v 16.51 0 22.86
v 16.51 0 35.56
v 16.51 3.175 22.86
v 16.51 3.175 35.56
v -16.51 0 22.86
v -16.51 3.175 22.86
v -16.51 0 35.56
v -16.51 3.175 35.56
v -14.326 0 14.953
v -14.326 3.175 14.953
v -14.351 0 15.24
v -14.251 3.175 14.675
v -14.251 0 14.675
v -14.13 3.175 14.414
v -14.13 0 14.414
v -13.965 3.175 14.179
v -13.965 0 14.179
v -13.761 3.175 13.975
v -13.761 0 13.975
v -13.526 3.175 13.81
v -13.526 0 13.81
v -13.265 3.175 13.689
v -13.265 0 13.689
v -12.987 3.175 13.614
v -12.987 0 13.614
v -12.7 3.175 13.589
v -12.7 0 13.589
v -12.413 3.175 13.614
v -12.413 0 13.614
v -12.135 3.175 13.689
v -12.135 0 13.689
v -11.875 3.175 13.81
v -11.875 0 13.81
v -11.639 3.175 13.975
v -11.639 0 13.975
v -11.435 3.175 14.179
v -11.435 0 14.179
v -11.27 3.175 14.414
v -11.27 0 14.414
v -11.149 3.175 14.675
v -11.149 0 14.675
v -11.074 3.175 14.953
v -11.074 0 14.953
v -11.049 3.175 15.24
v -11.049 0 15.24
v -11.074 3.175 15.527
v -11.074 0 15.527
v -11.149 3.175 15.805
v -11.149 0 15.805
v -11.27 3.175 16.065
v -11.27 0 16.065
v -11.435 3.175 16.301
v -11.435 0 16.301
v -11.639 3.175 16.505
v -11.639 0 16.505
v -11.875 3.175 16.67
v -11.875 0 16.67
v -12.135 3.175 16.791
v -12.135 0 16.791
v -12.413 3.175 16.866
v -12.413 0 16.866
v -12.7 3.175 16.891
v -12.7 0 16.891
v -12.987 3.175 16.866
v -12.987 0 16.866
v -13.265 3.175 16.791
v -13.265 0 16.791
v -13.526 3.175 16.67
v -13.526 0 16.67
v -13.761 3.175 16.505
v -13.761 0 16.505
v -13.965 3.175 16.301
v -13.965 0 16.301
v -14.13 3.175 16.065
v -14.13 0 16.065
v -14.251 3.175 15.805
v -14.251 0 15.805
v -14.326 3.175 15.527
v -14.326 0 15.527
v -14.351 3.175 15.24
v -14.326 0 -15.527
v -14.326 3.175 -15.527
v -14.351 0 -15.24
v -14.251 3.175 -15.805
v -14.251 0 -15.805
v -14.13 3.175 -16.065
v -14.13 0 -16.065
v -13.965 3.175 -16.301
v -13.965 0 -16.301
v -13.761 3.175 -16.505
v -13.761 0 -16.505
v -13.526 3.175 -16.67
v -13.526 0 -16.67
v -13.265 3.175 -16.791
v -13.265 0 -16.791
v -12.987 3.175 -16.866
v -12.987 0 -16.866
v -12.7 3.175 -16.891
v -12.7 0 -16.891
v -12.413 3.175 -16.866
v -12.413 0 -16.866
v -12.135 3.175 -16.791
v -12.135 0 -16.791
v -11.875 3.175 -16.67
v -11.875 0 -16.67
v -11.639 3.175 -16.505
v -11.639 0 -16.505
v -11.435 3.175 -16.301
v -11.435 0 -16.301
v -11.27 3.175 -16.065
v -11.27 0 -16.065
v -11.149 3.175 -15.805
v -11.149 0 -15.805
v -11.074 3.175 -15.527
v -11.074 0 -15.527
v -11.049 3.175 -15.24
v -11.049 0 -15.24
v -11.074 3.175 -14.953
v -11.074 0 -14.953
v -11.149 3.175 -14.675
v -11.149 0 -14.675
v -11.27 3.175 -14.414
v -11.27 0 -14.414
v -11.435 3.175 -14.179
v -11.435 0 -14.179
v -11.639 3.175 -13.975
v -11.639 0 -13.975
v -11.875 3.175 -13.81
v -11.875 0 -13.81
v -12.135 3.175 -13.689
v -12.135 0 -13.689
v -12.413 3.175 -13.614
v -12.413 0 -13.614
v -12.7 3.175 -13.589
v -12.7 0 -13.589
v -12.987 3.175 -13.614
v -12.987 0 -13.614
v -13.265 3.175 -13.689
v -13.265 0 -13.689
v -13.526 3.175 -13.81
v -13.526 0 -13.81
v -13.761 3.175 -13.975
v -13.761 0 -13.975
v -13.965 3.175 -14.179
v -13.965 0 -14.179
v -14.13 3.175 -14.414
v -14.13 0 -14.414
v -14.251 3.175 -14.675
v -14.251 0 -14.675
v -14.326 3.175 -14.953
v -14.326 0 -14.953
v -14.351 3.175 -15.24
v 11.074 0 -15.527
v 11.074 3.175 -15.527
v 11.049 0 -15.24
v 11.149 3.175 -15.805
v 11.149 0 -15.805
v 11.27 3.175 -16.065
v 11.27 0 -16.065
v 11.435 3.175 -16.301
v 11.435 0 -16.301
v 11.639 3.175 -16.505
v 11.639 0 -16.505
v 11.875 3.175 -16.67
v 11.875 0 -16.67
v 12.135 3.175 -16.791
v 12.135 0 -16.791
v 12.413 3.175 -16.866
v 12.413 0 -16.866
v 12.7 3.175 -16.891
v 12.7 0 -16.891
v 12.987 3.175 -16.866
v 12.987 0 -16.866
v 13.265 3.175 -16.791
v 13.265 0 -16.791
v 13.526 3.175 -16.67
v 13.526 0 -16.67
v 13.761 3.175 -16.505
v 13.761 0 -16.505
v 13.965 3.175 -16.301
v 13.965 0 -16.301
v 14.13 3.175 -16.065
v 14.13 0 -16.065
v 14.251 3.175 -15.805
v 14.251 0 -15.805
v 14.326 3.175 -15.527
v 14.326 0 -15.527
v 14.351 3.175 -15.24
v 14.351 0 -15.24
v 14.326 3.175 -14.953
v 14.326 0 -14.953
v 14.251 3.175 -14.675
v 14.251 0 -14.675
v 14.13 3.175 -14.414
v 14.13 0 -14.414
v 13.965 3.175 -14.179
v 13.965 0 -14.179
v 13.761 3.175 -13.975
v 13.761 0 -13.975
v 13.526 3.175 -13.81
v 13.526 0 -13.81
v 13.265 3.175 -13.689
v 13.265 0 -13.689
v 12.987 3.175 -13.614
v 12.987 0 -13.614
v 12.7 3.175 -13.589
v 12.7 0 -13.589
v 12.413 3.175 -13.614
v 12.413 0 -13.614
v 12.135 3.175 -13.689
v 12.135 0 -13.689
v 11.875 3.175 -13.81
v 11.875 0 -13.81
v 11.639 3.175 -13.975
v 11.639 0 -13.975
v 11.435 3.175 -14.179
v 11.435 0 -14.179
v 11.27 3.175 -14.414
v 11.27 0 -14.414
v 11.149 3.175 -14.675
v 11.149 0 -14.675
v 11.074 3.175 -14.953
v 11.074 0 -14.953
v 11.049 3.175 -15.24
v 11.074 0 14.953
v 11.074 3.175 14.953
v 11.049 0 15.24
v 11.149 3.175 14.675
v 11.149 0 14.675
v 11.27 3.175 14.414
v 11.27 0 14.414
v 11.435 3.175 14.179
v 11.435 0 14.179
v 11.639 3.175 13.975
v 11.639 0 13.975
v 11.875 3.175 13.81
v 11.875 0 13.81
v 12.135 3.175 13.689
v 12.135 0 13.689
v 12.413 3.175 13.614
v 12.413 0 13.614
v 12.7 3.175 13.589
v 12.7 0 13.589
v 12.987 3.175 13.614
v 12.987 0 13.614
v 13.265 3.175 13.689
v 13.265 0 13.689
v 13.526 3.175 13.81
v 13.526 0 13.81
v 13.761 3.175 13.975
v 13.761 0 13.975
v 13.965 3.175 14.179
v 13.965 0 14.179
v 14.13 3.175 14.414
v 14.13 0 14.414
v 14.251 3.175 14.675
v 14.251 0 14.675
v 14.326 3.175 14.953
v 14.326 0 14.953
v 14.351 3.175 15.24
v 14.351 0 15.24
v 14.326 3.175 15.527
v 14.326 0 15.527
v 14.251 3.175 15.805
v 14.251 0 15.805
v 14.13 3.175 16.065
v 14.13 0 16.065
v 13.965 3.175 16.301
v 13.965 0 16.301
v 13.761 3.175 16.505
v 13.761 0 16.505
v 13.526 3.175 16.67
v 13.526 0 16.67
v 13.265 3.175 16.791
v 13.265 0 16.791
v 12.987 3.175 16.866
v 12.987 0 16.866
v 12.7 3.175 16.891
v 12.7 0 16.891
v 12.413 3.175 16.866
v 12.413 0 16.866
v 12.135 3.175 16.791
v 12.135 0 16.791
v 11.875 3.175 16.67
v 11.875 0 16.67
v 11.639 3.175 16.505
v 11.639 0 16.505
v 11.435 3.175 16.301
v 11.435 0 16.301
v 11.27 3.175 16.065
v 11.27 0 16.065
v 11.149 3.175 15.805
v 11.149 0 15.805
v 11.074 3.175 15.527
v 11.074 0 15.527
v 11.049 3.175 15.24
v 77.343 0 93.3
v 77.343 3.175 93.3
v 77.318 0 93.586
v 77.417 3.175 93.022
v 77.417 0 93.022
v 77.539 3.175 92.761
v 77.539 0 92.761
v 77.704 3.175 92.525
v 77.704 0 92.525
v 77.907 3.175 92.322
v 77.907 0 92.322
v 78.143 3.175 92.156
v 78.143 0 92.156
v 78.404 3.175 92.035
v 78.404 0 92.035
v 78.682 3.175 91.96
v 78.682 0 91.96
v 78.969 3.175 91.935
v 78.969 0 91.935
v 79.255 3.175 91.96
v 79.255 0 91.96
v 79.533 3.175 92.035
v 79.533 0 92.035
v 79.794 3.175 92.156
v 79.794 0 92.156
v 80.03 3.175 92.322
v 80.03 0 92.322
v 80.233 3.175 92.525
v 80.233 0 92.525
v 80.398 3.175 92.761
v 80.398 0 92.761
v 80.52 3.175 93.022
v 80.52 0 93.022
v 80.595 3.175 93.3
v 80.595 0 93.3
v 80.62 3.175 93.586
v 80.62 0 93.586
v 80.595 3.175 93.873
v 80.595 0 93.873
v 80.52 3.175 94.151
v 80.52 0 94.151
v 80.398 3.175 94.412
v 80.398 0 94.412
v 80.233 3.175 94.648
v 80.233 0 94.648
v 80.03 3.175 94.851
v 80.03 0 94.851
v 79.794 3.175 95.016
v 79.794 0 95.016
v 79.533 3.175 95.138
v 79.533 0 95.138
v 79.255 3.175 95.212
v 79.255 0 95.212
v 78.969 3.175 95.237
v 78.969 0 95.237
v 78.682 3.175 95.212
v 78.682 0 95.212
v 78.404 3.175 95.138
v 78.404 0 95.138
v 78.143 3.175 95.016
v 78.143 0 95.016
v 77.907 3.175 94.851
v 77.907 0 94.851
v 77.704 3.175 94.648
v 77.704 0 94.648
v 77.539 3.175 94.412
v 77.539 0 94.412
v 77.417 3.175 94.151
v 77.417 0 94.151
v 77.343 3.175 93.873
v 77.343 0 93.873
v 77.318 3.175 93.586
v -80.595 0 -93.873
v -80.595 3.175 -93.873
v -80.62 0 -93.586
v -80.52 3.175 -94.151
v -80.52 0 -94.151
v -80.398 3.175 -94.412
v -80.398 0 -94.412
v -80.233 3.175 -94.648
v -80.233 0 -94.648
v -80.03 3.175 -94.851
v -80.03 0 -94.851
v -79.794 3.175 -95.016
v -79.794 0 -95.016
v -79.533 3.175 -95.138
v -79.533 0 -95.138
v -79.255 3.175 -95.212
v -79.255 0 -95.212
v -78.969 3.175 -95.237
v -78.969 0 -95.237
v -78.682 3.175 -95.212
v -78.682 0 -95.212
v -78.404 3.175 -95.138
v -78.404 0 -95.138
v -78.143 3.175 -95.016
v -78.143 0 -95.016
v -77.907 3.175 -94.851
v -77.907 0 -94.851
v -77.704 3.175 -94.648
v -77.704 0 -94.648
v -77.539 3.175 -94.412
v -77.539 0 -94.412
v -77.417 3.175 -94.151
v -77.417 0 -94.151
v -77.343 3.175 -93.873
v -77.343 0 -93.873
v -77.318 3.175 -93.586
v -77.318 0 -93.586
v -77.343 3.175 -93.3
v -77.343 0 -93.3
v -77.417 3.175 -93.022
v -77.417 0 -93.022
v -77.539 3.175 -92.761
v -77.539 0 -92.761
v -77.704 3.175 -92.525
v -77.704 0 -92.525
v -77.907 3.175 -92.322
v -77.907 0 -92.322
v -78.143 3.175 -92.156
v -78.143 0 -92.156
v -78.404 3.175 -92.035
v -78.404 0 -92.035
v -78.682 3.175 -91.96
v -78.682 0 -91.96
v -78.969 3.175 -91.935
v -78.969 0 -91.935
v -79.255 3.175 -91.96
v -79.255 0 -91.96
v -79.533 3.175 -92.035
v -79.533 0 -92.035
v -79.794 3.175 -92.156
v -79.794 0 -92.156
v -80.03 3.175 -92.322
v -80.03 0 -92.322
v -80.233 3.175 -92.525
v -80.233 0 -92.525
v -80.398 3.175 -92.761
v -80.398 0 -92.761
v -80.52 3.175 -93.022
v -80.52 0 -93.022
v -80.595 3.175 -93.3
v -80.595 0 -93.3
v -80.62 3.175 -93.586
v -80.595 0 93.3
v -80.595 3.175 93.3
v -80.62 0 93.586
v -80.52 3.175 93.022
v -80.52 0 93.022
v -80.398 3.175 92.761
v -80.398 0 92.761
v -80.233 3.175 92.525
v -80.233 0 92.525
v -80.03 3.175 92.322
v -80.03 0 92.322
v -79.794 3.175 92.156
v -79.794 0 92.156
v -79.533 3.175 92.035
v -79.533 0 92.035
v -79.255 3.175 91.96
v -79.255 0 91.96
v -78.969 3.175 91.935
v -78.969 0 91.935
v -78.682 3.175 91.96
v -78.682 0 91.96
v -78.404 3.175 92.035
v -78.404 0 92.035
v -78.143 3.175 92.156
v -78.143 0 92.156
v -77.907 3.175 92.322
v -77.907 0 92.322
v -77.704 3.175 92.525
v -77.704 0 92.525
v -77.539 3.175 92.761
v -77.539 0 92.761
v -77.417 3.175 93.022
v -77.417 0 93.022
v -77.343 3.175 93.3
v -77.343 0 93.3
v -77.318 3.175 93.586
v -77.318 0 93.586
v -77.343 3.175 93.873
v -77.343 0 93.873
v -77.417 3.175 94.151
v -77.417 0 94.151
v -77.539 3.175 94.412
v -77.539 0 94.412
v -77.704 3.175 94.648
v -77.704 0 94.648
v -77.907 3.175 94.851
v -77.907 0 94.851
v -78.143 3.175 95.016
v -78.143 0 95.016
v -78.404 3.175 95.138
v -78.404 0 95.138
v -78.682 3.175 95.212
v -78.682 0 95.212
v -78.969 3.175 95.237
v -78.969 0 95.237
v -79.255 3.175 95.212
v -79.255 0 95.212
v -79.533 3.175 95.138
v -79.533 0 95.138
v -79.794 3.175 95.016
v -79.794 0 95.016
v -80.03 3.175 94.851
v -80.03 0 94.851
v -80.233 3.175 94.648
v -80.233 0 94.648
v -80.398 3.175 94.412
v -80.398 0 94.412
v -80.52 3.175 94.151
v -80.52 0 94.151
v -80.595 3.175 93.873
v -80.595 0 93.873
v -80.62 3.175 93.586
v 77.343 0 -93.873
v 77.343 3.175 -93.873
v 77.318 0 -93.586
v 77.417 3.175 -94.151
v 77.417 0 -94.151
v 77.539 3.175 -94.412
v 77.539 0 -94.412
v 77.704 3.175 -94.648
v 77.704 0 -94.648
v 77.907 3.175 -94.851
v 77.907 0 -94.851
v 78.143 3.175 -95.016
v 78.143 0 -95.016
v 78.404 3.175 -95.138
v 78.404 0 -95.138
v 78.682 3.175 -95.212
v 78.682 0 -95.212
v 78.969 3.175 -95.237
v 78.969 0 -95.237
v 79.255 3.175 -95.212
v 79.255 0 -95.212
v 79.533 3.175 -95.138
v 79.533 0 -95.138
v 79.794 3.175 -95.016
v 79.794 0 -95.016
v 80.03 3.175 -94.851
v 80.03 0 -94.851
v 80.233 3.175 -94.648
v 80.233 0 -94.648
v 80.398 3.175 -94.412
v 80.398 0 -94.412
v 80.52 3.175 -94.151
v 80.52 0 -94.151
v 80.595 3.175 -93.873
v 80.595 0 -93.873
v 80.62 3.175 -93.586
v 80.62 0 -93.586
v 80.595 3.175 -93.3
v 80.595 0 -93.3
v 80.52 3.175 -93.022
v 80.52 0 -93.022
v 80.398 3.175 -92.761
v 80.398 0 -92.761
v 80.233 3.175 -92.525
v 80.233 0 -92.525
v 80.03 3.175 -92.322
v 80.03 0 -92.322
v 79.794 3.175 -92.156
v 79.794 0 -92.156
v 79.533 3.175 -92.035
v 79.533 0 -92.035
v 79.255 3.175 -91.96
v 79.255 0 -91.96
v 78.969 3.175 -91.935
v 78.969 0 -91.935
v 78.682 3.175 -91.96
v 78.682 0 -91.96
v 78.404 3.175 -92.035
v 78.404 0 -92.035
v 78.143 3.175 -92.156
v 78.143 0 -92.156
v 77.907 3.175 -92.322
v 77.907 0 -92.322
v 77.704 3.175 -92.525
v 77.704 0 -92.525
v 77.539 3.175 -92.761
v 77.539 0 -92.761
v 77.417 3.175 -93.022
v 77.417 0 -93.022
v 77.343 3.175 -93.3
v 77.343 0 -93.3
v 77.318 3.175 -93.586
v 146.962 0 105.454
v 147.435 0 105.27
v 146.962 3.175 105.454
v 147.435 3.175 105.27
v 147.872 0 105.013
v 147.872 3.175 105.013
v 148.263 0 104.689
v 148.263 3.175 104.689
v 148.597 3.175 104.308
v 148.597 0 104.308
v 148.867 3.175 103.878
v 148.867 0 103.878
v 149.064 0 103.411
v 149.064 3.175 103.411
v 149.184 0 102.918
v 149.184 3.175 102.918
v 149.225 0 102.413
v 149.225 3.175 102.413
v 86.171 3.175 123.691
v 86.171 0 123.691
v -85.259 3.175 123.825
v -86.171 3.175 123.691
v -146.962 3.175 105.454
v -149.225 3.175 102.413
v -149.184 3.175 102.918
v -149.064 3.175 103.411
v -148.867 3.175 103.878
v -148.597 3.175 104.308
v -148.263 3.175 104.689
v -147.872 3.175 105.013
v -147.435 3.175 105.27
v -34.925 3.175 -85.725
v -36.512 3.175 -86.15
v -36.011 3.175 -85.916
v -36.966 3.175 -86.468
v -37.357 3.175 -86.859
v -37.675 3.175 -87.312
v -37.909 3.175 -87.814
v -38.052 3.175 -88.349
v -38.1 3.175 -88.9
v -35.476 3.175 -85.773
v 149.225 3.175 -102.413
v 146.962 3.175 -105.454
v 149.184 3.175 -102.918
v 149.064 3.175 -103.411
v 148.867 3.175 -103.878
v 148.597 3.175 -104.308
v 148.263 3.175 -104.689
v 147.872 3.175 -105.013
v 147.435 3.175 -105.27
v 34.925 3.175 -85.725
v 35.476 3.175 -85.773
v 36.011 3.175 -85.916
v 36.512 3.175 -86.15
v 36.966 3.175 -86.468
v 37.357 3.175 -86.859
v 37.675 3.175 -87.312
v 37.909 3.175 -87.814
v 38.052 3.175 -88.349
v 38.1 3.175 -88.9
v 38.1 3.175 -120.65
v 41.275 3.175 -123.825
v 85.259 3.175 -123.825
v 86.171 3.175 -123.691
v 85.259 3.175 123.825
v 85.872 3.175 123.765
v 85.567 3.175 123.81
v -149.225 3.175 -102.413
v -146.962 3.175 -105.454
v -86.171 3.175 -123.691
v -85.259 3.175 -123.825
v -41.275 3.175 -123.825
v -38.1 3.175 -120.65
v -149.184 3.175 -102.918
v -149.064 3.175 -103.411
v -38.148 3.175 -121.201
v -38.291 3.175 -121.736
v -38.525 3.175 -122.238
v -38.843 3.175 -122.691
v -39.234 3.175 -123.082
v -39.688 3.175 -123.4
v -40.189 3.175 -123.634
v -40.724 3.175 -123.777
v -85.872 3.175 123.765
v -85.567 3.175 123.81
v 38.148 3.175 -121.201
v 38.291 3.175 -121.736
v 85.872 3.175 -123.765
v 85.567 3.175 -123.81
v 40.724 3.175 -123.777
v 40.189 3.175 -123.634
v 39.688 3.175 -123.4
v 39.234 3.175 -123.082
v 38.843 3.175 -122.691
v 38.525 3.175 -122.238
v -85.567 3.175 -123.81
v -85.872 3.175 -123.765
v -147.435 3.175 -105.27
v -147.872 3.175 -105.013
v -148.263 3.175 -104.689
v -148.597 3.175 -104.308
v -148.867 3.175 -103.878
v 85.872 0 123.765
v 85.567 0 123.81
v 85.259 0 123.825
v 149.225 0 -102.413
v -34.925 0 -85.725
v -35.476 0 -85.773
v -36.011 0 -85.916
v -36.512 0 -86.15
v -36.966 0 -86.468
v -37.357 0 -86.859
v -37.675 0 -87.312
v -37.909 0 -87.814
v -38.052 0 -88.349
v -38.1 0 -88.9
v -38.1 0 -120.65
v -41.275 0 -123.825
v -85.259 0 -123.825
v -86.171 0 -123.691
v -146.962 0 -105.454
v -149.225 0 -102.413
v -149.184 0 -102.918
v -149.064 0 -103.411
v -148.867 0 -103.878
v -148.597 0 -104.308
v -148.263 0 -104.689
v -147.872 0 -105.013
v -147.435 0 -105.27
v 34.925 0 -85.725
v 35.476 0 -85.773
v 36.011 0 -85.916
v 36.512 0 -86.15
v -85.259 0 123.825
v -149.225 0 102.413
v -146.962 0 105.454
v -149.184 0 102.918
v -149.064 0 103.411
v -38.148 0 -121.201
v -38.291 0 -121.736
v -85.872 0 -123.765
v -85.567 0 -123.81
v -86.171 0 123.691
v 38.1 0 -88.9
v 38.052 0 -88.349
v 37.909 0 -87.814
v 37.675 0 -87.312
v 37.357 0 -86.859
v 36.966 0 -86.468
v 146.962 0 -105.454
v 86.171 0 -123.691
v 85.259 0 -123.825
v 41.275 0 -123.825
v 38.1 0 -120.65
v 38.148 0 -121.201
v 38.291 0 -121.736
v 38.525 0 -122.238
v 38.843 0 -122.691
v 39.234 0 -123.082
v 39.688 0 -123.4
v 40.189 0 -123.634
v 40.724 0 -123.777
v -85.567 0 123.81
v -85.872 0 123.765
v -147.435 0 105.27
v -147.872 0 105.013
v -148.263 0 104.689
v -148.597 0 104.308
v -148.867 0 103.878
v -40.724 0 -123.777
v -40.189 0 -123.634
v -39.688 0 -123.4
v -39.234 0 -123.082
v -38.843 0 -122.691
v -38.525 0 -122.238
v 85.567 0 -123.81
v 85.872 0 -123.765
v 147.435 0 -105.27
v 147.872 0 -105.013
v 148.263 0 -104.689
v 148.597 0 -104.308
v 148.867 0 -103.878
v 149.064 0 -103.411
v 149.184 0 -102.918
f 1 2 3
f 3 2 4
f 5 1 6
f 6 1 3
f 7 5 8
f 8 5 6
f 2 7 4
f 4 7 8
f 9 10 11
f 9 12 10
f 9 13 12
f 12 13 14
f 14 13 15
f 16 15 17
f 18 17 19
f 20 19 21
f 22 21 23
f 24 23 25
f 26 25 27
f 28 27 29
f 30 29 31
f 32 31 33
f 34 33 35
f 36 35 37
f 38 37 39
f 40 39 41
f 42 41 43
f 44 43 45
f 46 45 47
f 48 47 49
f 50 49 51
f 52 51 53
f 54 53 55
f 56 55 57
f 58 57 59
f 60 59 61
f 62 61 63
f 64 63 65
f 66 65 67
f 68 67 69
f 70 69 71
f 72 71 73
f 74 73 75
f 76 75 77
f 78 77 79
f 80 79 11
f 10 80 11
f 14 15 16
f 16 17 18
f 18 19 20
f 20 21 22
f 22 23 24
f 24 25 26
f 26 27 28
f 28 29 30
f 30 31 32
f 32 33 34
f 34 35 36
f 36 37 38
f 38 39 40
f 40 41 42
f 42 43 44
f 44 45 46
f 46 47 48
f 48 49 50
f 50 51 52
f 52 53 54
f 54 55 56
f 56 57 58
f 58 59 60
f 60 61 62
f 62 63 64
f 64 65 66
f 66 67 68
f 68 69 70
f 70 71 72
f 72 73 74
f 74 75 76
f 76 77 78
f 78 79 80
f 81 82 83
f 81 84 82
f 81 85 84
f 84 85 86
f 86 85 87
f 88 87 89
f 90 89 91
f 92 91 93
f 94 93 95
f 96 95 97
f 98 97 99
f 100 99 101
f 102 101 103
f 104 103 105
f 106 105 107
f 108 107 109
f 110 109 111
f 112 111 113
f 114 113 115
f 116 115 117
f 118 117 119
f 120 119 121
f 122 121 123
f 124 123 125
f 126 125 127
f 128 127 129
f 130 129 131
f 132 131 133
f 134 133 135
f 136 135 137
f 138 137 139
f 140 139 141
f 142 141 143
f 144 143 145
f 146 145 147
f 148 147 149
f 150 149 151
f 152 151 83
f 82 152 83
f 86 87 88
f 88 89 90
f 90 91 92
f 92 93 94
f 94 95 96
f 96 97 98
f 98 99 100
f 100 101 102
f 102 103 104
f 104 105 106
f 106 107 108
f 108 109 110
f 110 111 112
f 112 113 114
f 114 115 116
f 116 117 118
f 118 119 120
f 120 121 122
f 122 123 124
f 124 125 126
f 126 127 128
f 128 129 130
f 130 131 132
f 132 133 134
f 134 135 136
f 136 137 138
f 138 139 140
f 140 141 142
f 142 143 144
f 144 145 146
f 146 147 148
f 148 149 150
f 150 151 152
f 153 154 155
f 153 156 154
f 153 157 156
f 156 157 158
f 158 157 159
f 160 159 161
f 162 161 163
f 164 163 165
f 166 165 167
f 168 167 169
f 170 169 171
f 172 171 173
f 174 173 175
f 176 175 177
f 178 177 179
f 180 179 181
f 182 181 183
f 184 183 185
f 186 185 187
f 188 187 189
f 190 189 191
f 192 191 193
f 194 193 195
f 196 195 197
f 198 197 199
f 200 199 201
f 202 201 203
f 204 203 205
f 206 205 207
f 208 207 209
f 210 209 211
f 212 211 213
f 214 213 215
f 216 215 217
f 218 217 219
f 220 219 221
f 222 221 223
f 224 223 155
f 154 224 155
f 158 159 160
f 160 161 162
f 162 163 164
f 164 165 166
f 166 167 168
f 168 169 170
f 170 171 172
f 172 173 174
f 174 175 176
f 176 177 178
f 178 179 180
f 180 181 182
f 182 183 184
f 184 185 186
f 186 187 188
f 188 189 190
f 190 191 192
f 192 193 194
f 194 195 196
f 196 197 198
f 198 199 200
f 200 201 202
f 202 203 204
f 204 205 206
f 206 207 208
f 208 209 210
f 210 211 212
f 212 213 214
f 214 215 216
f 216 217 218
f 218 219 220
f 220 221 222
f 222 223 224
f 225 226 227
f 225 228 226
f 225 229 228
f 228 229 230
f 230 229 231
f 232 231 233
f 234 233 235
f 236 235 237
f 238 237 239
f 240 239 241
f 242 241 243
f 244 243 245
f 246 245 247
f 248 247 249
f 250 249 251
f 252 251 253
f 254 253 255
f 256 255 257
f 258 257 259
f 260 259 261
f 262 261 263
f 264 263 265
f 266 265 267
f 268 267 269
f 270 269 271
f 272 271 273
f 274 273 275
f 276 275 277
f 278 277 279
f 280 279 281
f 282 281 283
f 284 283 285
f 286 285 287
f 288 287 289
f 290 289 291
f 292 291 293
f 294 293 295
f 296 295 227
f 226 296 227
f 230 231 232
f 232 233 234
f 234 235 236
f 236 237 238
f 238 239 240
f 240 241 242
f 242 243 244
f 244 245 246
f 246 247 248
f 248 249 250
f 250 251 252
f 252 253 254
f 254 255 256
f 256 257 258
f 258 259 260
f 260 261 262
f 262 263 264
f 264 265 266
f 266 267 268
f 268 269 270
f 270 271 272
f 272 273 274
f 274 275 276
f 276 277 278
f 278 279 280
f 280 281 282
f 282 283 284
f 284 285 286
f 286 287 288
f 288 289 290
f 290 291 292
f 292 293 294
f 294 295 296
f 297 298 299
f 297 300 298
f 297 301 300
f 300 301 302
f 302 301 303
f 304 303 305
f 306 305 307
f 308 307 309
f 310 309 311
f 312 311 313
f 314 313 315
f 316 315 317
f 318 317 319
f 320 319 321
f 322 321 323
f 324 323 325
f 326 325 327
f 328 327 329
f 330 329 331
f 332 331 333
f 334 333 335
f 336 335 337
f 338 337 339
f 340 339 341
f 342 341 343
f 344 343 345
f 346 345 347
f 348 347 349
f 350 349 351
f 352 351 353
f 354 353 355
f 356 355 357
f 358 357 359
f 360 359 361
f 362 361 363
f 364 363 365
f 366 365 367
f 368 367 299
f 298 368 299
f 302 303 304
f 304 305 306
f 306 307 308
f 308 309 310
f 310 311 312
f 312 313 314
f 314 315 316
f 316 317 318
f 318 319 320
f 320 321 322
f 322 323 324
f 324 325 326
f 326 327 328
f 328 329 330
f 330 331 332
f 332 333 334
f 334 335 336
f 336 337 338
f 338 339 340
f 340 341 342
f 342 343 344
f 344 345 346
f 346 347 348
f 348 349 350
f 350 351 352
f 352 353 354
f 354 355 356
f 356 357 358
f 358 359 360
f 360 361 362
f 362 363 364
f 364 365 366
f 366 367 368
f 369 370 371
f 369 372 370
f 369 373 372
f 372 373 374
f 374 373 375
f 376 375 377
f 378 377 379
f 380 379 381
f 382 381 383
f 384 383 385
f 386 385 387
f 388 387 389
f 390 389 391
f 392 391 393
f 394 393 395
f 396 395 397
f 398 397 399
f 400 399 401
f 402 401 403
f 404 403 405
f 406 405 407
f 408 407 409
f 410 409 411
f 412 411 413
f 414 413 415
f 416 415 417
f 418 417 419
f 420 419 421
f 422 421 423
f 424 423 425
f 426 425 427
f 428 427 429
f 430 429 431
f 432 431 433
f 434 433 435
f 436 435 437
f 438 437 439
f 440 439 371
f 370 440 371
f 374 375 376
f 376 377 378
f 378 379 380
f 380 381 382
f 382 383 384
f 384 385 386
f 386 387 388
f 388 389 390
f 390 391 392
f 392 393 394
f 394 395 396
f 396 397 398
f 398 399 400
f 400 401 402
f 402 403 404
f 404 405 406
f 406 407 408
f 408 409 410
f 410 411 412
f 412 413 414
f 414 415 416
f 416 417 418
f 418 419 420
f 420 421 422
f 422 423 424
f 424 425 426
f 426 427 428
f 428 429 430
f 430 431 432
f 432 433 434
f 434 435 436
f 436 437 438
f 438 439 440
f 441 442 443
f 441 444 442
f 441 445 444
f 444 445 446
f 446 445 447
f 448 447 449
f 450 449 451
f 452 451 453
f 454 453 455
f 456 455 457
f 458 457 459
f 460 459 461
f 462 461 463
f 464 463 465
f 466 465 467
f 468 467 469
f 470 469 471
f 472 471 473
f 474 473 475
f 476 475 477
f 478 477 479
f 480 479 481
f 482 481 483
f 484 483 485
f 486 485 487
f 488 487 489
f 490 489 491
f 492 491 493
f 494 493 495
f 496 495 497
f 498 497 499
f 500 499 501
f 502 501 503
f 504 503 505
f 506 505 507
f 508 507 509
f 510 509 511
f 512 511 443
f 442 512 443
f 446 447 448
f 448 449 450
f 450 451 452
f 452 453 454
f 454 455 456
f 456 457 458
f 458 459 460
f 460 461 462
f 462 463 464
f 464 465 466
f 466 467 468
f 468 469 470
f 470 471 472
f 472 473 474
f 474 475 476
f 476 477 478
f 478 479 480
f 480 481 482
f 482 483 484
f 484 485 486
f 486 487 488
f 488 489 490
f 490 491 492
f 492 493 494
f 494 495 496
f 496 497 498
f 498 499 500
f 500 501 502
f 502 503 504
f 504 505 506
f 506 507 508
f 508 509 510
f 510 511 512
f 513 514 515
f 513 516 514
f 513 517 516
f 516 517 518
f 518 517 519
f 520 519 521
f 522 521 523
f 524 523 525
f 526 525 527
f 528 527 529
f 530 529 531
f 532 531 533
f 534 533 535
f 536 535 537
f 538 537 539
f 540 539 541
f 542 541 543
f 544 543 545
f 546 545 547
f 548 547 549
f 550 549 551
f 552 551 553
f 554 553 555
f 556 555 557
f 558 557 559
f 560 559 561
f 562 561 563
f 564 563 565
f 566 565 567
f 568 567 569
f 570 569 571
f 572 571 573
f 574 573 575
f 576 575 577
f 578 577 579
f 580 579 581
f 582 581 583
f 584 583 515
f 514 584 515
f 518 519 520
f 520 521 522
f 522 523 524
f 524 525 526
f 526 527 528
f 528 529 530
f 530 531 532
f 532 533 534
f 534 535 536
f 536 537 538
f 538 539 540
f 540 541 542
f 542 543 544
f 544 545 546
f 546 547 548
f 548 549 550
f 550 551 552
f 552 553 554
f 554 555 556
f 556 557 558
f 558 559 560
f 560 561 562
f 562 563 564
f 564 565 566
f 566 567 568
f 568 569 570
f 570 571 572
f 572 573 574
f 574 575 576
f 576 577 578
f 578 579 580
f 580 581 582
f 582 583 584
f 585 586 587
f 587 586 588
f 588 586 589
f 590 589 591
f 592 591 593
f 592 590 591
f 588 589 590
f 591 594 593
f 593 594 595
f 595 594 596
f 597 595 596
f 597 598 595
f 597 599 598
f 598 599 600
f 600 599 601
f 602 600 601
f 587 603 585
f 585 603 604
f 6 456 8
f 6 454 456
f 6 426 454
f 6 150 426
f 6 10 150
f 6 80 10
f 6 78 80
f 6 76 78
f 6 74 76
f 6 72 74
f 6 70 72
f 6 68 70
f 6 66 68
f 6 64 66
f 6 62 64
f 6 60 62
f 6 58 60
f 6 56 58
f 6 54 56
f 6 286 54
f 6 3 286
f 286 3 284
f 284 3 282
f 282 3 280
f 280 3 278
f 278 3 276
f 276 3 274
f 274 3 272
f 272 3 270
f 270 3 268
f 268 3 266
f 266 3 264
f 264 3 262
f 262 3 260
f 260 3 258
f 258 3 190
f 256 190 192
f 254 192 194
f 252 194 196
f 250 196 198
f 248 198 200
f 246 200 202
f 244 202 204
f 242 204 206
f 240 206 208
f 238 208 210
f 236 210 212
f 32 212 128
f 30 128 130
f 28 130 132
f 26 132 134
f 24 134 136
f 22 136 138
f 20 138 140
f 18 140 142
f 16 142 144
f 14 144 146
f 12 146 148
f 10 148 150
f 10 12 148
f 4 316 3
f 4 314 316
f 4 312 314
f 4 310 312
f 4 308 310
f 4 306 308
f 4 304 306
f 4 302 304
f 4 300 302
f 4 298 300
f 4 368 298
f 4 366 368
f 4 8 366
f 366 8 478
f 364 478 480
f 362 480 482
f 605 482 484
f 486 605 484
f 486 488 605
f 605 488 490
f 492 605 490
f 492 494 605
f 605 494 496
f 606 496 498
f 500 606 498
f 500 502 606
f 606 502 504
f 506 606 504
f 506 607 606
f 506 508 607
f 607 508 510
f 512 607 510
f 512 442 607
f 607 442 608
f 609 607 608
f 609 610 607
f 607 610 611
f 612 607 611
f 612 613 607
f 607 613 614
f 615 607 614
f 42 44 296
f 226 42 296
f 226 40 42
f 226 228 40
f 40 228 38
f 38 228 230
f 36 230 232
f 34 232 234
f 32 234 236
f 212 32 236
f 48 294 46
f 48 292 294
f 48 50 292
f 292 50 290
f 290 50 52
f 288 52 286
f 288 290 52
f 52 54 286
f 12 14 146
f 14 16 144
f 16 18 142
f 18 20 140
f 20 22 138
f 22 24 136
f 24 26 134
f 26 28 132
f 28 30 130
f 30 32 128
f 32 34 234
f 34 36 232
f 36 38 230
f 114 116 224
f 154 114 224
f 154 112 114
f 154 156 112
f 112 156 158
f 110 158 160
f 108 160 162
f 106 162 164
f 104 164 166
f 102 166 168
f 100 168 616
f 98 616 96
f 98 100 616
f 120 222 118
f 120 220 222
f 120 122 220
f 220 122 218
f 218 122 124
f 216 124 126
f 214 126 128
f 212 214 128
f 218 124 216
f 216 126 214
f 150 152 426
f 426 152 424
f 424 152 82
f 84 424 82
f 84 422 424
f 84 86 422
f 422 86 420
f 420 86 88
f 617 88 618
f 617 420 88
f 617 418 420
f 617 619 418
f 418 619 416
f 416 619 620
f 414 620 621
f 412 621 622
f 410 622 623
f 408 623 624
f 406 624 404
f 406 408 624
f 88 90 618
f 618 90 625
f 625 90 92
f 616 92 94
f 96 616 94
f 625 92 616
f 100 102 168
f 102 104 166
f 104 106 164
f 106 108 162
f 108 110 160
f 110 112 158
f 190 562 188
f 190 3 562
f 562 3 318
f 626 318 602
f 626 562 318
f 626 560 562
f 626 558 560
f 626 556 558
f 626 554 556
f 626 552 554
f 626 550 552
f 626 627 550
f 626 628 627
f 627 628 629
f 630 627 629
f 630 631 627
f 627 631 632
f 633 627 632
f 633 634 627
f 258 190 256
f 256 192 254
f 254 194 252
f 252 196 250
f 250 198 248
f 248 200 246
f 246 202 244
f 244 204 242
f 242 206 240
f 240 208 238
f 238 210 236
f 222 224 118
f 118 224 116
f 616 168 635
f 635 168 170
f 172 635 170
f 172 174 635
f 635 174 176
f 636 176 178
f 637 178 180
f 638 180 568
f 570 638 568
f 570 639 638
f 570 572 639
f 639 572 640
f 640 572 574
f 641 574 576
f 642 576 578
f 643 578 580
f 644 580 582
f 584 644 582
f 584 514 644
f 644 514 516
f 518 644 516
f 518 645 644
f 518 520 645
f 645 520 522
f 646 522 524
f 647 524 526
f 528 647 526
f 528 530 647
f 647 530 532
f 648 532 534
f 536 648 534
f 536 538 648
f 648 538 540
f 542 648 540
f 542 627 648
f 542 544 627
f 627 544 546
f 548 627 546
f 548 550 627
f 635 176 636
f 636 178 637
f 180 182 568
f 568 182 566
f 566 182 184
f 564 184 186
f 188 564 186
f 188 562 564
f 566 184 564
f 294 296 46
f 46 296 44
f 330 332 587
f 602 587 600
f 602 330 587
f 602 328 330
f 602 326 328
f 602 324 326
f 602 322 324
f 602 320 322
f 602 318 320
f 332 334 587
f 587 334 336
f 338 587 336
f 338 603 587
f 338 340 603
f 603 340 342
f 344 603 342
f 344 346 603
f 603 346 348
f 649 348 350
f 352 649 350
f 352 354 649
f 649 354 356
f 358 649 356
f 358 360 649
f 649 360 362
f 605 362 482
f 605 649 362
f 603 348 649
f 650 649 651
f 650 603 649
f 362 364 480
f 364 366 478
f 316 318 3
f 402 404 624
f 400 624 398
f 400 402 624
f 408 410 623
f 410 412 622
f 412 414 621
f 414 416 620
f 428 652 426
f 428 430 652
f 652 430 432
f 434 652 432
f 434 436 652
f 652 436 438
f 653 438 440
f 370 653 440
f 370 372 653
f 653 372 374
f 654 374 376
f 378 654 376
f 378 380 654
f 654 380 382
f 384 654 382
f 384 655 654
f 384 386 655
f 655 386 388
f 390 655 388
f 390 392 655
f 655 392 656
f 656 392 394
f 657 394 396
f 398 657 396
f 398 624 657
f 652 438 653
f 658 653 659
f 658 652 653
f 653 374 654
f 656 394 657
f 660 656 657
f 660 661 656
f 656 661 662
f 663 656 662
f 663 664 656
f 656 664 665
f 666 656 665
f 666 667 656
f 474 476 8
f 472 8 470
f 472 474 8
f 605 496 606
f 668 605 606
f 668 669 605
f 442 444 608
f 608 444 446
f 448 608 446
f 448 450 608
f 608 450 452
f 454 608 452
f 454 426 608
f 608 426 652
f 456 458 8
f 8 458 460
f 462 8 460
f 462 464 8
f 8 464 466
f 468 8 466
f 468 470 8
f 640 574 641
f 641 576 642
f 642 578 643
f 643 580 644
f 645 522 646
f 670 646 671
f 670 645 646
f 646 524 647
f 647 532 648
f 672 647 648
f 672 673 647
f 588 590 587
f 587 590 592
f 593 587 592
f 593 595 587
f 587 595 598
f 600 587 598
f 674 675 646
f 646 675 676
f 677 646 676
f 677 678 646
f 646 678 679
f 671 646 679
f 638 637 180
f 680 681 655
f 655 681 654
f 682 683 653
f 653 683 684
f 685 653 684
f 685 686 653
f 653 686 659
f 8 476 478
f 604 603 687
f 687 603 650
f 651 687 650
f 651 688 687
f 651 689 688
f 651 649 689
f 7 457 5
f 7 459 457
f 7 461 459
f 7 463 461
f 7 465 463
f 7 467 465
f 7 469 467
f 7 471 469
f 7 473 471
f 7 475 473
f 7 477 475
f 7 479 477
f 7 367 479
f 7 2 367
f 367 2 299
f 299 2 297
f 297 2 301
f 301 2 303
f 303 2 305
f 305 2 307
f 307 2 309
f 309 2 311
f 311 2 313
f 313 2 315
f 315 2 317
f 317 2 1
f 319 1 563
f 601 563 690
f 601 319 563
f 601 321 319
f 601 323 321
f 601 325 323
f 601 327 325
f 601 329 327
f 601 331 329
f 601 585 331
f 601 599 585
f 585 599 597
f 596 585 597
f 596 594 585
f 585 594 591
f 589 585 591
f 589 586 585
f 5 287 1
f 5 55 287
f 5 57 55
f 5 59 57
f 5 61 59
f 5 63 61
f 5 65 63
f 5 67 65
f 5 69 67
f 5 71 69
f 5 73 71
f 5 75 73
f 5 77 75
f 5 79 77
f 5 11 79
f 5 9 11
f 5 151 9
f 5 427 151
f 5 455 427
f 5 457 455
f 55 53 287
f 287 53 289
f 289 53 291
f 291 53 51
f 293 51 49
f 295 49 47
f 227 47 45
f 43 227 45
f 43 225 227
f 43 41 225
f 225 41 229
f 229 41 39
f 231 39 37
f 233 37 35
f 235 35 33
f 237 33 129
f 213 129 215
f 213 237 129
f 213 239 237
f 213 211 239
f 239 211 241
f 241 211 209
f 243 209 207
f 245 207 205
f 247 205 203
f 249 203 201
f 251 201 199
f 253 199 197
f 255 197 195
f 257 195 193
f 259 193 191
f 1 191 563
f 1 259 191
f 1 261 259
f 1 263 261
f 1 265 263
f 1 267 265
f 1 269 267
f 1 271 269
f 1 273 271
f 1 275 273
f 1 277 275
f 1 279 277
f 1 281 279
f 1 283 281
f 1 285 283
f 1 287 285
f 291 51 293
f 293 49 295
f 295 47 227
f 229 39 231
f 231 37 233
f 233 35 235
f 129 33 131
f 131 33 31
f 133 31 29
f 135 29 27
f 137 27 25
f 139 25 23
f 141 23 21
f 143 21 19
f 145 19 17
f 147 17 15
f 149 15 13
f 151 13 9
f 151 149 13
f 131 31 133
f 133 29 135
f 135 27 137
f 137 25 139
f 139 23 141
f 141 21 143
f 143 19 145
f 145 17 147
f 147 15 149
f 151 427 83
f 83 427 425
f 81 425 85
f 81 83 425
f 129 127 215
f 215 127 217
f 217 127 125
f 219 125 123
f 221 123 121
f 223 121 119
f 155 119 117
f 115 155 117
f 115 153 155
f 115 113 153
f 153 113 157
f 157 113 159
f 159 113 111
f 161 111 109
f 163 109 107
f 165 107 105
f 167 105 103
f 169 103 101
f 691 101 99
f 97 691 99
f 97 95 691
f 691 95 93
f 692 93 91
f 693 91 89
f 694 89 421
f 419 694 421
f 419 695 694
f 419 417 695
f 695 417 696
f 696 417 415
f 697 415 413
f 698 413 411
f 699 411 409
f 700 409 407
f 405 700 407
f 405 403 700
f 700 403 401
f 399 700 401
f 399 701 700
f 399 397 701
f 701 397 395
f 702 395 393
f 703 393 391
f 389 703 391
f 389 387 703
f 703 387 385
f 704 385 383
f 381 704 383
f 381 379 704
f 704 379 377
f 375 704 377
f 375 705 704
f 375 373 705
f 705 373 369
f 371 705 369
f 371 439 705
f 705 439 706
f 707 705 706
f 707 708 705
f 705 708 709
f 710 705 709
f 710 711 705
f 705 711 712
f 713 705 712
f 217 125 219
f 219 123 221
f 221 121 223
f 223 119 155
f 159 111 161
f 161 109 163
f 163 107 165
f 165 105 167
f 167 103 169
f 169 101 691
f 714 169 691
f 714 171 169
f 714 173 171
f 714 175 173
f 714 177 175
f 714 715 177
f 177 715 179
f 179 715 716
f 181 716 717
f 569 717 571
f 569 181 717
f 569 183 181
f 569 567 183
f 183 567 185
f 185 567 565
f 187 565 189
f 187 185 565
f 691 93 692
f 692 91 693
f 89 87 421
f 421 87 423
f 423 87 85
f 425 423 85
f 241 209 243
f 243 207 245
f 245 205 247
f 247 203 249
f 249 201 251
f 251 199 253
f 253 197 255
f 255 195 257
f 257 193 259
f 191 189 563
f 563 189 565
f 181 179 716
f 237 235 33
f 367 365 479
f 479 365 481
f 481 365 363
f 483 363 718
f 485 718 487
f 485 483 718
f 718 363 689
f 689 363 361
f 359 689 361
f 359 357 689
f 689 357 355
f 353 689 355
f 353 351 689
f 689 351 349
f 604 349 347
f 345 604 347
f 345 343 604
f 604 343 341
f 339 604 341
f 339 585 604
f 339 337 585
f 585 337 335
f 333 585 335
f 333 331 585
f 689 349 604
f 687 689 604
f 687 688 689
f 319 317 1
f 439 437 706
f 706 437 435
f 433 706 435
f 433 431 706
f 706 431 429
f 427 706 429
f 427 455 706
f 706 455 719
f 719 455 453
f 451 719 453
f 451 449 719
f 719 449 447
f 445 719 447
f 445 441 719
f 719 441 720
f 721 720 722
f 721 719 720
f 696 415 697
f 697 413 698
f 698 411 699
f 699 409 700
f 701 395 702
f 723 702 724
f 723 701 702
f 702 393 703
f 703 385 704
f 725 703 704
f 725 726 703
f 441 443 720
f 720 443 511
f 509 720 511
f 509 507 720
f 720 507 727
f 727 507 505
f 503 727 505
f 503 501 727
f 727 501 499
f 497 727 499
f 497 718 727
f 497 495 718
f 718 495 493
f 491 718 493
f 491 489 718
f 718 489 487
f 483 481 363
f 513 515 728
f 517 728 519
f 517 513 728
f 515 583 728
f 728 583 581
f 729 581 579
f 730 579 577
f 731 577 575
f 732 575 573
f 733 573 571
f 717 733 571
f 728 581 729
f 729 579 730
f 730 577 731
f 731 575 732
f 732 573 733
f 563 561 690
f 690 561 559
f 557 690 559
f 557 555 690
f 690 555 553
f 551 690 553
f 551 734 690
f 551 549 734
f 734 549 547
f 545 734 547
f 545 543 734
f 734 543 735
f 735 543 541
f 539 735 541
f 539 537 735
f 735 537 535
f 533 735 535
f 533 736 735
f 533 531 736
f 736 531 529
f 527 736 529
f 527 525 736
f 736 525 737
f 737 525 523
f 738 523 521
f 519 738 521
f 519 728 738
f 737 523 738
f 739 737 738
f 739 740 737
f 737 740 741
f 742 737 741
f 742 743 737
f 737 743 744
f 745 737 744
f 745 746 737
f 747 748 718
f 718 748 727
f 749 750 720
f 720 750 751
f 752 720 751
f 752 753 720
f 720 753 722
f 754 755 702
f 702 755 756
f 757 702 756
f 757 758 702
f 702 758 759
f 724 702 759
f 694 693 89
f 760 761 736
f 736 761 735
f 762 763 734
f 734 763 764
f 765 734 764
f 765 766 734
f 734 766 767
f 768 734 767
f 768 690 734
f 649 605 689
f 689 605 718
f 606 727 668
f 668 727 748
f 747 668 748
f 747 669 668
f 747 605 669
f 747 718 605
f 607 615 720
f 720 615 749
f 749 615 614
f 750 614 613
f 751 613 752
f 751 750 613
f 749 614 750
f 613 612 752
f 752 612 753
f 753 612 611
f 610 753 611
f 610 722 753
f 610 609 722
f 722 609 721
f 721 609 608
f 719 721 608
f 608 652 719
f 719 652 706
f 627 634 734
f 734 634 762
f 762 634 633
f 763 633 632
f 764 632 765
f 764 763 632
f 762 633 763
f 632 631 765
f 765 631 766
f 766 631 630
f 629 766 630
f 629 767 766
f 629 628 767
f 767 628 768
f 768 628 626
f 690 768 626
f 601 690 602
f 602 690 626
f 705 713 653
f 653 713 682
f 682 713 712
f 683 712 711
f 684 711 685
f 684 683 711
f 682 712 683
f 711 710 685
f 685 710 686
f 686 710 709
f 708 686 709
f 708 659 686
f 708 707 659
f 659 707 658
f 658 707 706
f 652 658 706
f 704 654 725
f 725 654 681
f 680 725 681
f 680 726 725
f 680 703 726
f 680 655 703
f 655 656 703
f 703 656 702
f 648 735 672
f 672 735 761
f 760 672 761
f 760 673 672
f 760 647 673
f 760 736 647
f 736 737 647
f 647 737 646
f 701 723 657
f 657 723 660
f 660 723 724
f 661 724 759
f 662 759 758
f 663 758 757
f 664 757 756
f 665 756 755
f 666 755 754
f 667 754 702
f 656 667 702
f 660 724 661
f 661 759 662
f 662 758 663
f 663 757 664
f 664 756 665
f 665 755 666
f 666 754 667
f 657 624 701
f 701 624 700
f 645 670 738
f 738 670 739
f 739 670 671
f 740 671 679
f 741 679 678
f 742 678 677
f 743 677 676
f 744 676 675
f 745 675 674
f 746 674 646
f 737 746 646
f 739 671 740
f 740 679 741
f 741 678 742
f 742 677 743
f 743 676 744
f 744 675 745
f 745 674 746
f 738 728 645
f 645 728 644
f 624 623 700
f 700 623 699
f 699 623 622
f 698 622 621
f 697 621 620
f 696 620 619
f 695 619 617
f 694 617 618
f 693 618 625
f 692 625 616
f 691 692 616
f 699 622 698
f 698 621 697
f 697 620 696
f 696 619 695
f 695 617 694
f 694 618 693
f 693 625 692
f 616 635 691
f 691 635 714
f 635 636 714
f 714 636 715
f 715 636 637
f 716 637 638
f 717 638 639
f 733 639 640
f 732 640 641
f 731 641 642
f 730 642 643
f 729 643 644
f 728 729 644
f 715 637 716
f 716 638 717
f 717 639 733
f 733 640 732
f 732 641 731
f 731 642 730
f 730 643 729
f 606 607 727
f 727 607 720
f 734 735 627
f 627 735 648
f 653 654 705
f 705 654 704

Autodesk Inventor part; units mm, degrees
ref_plane "YZ Plane" through (0, 0, 0) normal (1, 0, 0) x (0, 1, 0)
ref_plane "XZ Plane" through (0, 0, 0) normal (0, 1, 0) x (-1, 0, 0)
ref_plane "XY Plane" through (0, 0, 0) normal (0, 0, 1) x (1, 0, 0)
sketch "Sketch1" plane through (0, 0, 0) normal (0, 1, 0) x (-1, 0, 0)
  line L0 (149.225, -123.825) -> (-149.225, -123.825)
  line L1 (-149.225, -123.825) -> (-149.225, 123.825)
  line L2 (-149.225, 123.825) -> (149.225, 123.825)
  line L3 (149.225, 123.825) -> (149.225, -123.825)
  line L4 (149.225, -123.825) -> (-149.225, 123.825) construction
  line L5 (-149.225, -123.825) -> (149.225, 123.825) construction
  point P0 (0, 0)
  dimension "d0" = 298.45
  dimension "d1" = 247.65
extrude "Extrusion1" add sketch "Sketch1" along normal blind 3.175
sketch "Sketch2" plane through (0, 3.175, 0) normal (0, 1, 0) x (1, 0, 0)
  line L0 (149.225, 123.825) -> (-149.225, 123.825) projected
  line L1 (-149.225, 123.825) -> (-149.225, -123.825) projected
  line L2 (-149.225, -123.825) -> (149.225, -123.825) projected
  line L3 (149.225, -123.825) -> (149.225, 123.825) projected
  line L4 (-149.225, 104.775) -> (-85.725, 123.825)
  line L5 (85.725, 123.825) -> (149.225, 104.775)
  line L6 (149.225, -104.775) -> (85.725, -123.825)
  line L7 (-85.725, -123.825) -> (-149.225, -104.775)
  point P0 (0, 0)
  dimension "d4" = 19.05
  dimension "d5" = 19.05
  dimension "d6" = 19.05
  dimension "d7" = 19.05
  dimension "d8" = 63.5
  dimension "d9" = 63.5
  dimension "d10" = 63.5
extrude "Extrusion2" cut sketch "Sketch2" against normal blind 3.175 contours L3 L5 L0 | L4 L1 L0 | L3 L2 L6 | L7 L2 L1
sketch "Sketch3" plane through (0, 3.175, 0) normal (0, 1, 0) x (1, 0, 0)
  line L0 (85.725, 123.825) -> (-85.725, 123.825) projected
  line L1 (-38.1, 123.825) -> (38.1, 123.825)
  line L2 (38.1, 123.825) -> (38.1, 85.725)
  line L3 (38.1, 85.725) -> (-38.1, 85.725)
  line L4 (-38.1, 85.725) -> (-38.1, 123.825)
  point P0 (0, 0)
  point P1 (0, 85.725)
  dimension "d13" = 38.1
  dimension "d14" = 76.2
extrude "Extrusion3" cut sketch "Sketch3" against normal blind 3.175
fillet "Fillet1" radius 3.175 12 edges at (38.1, 1.5875, -85.725) (-38.1, 1.5875, -85.725) (38.1, 1.5875, -123.825) (-38.1, 1.5875, -123.825) (85.725, 1.5875, -123.825) (-85.725, 1.5875, -123.825) (-149.225, 1.5875, -104.775) (149.225, 1.5875, -104.775) (-149.225, 1.5875, 104.775) (-85.725, 1.5875, 123.825) (85.725, 1.5875, 123.825) (149.225, 1.5875, 104.775)
sketch "Sketch4" plane through (0, 3.175, 0) normal (0, 1, 0) x (1, 0, 0)
  point P0 (0, 0)
  point P1 (-78.9686, 93.5863)
  point P2 (-78.9686, -93.5863)
  point P3 (78.9686, -93.5863)
  point P4 (78.9686, 93.5863)
  dimension "d18" = 93.5863
  dimension "d19" = 93.5863
  dimension "d20" = 78.9686
  dimension "d21" = 78.9686
hole "Hole1" at (-78.9686, 3.175, -93.5863) at (-78.9686, 3.175, 93.5863) at (78.9686, 3.175, 93.5863) at (78.9686, 3.175, -93.5863) direction (0, -1, 0) diameter 3.302 end through all
sketch "Sketch5" plane through (0, 3.175, 0) normal (0, 1, 0) x (1, 0, 0)
  line L0 (-149.225, 102.4127) -> (-149.225, -102.4127) projected
  line L1 (149.225, -102.4127) -> (149.225, 102.4127) projected
  point P0 (0, 0)
  point P1 (-12.7, 15.24)
  point P2 (12.7, 15.24)
  point P3 (-12.7, -15.24)
  point P4 (12.7, -15.24)
  dimension "d38" = 25.4
  dimension "d39" = 25.4
  dimension "d40" = 30.48
  dimension "d44" = 15.24
  dimension "d45" = 15.24
  dimension "d46" = 12.7
  dimension "d47" = 12.7
  dimension "d48" = 12.7
hole "Hole3" at (-12.7, 3.175, -15.24) at (12.7, 3.175, -15.24) at (-12.7, 3.175, 15.24) at (12.7, 3.175, 15.24) direction (0, -1, 0) diameter 3.302 end through all
sketch "Sketch6" plane through (0, 3.175, 0) normal (0, 1, 0) x (1, 0, 0)
  line L0 (-16.51, -22.86) -> (16.51, -22.86)
  line L1 (16.51, -22.86) -> (16.51, -35.56)
  line L2 (16.51, -35.56) -> (-16.51, -35.56)
  line L3 (-16.51, -35.56) -> (-16.51, -22.86)
  point P0 (0, 0)
  dimension "d56" = 33.02
  dimension "d57" = 22.86
  dimension "d58" = 16.51
  dimension "d61" = 12.7
extrude "Extrusion4" cut sketch "Sketch6" against normal blind 25.4
equation "\"d18\" = d19"
properties part number "CoverPlate_CamMount"
